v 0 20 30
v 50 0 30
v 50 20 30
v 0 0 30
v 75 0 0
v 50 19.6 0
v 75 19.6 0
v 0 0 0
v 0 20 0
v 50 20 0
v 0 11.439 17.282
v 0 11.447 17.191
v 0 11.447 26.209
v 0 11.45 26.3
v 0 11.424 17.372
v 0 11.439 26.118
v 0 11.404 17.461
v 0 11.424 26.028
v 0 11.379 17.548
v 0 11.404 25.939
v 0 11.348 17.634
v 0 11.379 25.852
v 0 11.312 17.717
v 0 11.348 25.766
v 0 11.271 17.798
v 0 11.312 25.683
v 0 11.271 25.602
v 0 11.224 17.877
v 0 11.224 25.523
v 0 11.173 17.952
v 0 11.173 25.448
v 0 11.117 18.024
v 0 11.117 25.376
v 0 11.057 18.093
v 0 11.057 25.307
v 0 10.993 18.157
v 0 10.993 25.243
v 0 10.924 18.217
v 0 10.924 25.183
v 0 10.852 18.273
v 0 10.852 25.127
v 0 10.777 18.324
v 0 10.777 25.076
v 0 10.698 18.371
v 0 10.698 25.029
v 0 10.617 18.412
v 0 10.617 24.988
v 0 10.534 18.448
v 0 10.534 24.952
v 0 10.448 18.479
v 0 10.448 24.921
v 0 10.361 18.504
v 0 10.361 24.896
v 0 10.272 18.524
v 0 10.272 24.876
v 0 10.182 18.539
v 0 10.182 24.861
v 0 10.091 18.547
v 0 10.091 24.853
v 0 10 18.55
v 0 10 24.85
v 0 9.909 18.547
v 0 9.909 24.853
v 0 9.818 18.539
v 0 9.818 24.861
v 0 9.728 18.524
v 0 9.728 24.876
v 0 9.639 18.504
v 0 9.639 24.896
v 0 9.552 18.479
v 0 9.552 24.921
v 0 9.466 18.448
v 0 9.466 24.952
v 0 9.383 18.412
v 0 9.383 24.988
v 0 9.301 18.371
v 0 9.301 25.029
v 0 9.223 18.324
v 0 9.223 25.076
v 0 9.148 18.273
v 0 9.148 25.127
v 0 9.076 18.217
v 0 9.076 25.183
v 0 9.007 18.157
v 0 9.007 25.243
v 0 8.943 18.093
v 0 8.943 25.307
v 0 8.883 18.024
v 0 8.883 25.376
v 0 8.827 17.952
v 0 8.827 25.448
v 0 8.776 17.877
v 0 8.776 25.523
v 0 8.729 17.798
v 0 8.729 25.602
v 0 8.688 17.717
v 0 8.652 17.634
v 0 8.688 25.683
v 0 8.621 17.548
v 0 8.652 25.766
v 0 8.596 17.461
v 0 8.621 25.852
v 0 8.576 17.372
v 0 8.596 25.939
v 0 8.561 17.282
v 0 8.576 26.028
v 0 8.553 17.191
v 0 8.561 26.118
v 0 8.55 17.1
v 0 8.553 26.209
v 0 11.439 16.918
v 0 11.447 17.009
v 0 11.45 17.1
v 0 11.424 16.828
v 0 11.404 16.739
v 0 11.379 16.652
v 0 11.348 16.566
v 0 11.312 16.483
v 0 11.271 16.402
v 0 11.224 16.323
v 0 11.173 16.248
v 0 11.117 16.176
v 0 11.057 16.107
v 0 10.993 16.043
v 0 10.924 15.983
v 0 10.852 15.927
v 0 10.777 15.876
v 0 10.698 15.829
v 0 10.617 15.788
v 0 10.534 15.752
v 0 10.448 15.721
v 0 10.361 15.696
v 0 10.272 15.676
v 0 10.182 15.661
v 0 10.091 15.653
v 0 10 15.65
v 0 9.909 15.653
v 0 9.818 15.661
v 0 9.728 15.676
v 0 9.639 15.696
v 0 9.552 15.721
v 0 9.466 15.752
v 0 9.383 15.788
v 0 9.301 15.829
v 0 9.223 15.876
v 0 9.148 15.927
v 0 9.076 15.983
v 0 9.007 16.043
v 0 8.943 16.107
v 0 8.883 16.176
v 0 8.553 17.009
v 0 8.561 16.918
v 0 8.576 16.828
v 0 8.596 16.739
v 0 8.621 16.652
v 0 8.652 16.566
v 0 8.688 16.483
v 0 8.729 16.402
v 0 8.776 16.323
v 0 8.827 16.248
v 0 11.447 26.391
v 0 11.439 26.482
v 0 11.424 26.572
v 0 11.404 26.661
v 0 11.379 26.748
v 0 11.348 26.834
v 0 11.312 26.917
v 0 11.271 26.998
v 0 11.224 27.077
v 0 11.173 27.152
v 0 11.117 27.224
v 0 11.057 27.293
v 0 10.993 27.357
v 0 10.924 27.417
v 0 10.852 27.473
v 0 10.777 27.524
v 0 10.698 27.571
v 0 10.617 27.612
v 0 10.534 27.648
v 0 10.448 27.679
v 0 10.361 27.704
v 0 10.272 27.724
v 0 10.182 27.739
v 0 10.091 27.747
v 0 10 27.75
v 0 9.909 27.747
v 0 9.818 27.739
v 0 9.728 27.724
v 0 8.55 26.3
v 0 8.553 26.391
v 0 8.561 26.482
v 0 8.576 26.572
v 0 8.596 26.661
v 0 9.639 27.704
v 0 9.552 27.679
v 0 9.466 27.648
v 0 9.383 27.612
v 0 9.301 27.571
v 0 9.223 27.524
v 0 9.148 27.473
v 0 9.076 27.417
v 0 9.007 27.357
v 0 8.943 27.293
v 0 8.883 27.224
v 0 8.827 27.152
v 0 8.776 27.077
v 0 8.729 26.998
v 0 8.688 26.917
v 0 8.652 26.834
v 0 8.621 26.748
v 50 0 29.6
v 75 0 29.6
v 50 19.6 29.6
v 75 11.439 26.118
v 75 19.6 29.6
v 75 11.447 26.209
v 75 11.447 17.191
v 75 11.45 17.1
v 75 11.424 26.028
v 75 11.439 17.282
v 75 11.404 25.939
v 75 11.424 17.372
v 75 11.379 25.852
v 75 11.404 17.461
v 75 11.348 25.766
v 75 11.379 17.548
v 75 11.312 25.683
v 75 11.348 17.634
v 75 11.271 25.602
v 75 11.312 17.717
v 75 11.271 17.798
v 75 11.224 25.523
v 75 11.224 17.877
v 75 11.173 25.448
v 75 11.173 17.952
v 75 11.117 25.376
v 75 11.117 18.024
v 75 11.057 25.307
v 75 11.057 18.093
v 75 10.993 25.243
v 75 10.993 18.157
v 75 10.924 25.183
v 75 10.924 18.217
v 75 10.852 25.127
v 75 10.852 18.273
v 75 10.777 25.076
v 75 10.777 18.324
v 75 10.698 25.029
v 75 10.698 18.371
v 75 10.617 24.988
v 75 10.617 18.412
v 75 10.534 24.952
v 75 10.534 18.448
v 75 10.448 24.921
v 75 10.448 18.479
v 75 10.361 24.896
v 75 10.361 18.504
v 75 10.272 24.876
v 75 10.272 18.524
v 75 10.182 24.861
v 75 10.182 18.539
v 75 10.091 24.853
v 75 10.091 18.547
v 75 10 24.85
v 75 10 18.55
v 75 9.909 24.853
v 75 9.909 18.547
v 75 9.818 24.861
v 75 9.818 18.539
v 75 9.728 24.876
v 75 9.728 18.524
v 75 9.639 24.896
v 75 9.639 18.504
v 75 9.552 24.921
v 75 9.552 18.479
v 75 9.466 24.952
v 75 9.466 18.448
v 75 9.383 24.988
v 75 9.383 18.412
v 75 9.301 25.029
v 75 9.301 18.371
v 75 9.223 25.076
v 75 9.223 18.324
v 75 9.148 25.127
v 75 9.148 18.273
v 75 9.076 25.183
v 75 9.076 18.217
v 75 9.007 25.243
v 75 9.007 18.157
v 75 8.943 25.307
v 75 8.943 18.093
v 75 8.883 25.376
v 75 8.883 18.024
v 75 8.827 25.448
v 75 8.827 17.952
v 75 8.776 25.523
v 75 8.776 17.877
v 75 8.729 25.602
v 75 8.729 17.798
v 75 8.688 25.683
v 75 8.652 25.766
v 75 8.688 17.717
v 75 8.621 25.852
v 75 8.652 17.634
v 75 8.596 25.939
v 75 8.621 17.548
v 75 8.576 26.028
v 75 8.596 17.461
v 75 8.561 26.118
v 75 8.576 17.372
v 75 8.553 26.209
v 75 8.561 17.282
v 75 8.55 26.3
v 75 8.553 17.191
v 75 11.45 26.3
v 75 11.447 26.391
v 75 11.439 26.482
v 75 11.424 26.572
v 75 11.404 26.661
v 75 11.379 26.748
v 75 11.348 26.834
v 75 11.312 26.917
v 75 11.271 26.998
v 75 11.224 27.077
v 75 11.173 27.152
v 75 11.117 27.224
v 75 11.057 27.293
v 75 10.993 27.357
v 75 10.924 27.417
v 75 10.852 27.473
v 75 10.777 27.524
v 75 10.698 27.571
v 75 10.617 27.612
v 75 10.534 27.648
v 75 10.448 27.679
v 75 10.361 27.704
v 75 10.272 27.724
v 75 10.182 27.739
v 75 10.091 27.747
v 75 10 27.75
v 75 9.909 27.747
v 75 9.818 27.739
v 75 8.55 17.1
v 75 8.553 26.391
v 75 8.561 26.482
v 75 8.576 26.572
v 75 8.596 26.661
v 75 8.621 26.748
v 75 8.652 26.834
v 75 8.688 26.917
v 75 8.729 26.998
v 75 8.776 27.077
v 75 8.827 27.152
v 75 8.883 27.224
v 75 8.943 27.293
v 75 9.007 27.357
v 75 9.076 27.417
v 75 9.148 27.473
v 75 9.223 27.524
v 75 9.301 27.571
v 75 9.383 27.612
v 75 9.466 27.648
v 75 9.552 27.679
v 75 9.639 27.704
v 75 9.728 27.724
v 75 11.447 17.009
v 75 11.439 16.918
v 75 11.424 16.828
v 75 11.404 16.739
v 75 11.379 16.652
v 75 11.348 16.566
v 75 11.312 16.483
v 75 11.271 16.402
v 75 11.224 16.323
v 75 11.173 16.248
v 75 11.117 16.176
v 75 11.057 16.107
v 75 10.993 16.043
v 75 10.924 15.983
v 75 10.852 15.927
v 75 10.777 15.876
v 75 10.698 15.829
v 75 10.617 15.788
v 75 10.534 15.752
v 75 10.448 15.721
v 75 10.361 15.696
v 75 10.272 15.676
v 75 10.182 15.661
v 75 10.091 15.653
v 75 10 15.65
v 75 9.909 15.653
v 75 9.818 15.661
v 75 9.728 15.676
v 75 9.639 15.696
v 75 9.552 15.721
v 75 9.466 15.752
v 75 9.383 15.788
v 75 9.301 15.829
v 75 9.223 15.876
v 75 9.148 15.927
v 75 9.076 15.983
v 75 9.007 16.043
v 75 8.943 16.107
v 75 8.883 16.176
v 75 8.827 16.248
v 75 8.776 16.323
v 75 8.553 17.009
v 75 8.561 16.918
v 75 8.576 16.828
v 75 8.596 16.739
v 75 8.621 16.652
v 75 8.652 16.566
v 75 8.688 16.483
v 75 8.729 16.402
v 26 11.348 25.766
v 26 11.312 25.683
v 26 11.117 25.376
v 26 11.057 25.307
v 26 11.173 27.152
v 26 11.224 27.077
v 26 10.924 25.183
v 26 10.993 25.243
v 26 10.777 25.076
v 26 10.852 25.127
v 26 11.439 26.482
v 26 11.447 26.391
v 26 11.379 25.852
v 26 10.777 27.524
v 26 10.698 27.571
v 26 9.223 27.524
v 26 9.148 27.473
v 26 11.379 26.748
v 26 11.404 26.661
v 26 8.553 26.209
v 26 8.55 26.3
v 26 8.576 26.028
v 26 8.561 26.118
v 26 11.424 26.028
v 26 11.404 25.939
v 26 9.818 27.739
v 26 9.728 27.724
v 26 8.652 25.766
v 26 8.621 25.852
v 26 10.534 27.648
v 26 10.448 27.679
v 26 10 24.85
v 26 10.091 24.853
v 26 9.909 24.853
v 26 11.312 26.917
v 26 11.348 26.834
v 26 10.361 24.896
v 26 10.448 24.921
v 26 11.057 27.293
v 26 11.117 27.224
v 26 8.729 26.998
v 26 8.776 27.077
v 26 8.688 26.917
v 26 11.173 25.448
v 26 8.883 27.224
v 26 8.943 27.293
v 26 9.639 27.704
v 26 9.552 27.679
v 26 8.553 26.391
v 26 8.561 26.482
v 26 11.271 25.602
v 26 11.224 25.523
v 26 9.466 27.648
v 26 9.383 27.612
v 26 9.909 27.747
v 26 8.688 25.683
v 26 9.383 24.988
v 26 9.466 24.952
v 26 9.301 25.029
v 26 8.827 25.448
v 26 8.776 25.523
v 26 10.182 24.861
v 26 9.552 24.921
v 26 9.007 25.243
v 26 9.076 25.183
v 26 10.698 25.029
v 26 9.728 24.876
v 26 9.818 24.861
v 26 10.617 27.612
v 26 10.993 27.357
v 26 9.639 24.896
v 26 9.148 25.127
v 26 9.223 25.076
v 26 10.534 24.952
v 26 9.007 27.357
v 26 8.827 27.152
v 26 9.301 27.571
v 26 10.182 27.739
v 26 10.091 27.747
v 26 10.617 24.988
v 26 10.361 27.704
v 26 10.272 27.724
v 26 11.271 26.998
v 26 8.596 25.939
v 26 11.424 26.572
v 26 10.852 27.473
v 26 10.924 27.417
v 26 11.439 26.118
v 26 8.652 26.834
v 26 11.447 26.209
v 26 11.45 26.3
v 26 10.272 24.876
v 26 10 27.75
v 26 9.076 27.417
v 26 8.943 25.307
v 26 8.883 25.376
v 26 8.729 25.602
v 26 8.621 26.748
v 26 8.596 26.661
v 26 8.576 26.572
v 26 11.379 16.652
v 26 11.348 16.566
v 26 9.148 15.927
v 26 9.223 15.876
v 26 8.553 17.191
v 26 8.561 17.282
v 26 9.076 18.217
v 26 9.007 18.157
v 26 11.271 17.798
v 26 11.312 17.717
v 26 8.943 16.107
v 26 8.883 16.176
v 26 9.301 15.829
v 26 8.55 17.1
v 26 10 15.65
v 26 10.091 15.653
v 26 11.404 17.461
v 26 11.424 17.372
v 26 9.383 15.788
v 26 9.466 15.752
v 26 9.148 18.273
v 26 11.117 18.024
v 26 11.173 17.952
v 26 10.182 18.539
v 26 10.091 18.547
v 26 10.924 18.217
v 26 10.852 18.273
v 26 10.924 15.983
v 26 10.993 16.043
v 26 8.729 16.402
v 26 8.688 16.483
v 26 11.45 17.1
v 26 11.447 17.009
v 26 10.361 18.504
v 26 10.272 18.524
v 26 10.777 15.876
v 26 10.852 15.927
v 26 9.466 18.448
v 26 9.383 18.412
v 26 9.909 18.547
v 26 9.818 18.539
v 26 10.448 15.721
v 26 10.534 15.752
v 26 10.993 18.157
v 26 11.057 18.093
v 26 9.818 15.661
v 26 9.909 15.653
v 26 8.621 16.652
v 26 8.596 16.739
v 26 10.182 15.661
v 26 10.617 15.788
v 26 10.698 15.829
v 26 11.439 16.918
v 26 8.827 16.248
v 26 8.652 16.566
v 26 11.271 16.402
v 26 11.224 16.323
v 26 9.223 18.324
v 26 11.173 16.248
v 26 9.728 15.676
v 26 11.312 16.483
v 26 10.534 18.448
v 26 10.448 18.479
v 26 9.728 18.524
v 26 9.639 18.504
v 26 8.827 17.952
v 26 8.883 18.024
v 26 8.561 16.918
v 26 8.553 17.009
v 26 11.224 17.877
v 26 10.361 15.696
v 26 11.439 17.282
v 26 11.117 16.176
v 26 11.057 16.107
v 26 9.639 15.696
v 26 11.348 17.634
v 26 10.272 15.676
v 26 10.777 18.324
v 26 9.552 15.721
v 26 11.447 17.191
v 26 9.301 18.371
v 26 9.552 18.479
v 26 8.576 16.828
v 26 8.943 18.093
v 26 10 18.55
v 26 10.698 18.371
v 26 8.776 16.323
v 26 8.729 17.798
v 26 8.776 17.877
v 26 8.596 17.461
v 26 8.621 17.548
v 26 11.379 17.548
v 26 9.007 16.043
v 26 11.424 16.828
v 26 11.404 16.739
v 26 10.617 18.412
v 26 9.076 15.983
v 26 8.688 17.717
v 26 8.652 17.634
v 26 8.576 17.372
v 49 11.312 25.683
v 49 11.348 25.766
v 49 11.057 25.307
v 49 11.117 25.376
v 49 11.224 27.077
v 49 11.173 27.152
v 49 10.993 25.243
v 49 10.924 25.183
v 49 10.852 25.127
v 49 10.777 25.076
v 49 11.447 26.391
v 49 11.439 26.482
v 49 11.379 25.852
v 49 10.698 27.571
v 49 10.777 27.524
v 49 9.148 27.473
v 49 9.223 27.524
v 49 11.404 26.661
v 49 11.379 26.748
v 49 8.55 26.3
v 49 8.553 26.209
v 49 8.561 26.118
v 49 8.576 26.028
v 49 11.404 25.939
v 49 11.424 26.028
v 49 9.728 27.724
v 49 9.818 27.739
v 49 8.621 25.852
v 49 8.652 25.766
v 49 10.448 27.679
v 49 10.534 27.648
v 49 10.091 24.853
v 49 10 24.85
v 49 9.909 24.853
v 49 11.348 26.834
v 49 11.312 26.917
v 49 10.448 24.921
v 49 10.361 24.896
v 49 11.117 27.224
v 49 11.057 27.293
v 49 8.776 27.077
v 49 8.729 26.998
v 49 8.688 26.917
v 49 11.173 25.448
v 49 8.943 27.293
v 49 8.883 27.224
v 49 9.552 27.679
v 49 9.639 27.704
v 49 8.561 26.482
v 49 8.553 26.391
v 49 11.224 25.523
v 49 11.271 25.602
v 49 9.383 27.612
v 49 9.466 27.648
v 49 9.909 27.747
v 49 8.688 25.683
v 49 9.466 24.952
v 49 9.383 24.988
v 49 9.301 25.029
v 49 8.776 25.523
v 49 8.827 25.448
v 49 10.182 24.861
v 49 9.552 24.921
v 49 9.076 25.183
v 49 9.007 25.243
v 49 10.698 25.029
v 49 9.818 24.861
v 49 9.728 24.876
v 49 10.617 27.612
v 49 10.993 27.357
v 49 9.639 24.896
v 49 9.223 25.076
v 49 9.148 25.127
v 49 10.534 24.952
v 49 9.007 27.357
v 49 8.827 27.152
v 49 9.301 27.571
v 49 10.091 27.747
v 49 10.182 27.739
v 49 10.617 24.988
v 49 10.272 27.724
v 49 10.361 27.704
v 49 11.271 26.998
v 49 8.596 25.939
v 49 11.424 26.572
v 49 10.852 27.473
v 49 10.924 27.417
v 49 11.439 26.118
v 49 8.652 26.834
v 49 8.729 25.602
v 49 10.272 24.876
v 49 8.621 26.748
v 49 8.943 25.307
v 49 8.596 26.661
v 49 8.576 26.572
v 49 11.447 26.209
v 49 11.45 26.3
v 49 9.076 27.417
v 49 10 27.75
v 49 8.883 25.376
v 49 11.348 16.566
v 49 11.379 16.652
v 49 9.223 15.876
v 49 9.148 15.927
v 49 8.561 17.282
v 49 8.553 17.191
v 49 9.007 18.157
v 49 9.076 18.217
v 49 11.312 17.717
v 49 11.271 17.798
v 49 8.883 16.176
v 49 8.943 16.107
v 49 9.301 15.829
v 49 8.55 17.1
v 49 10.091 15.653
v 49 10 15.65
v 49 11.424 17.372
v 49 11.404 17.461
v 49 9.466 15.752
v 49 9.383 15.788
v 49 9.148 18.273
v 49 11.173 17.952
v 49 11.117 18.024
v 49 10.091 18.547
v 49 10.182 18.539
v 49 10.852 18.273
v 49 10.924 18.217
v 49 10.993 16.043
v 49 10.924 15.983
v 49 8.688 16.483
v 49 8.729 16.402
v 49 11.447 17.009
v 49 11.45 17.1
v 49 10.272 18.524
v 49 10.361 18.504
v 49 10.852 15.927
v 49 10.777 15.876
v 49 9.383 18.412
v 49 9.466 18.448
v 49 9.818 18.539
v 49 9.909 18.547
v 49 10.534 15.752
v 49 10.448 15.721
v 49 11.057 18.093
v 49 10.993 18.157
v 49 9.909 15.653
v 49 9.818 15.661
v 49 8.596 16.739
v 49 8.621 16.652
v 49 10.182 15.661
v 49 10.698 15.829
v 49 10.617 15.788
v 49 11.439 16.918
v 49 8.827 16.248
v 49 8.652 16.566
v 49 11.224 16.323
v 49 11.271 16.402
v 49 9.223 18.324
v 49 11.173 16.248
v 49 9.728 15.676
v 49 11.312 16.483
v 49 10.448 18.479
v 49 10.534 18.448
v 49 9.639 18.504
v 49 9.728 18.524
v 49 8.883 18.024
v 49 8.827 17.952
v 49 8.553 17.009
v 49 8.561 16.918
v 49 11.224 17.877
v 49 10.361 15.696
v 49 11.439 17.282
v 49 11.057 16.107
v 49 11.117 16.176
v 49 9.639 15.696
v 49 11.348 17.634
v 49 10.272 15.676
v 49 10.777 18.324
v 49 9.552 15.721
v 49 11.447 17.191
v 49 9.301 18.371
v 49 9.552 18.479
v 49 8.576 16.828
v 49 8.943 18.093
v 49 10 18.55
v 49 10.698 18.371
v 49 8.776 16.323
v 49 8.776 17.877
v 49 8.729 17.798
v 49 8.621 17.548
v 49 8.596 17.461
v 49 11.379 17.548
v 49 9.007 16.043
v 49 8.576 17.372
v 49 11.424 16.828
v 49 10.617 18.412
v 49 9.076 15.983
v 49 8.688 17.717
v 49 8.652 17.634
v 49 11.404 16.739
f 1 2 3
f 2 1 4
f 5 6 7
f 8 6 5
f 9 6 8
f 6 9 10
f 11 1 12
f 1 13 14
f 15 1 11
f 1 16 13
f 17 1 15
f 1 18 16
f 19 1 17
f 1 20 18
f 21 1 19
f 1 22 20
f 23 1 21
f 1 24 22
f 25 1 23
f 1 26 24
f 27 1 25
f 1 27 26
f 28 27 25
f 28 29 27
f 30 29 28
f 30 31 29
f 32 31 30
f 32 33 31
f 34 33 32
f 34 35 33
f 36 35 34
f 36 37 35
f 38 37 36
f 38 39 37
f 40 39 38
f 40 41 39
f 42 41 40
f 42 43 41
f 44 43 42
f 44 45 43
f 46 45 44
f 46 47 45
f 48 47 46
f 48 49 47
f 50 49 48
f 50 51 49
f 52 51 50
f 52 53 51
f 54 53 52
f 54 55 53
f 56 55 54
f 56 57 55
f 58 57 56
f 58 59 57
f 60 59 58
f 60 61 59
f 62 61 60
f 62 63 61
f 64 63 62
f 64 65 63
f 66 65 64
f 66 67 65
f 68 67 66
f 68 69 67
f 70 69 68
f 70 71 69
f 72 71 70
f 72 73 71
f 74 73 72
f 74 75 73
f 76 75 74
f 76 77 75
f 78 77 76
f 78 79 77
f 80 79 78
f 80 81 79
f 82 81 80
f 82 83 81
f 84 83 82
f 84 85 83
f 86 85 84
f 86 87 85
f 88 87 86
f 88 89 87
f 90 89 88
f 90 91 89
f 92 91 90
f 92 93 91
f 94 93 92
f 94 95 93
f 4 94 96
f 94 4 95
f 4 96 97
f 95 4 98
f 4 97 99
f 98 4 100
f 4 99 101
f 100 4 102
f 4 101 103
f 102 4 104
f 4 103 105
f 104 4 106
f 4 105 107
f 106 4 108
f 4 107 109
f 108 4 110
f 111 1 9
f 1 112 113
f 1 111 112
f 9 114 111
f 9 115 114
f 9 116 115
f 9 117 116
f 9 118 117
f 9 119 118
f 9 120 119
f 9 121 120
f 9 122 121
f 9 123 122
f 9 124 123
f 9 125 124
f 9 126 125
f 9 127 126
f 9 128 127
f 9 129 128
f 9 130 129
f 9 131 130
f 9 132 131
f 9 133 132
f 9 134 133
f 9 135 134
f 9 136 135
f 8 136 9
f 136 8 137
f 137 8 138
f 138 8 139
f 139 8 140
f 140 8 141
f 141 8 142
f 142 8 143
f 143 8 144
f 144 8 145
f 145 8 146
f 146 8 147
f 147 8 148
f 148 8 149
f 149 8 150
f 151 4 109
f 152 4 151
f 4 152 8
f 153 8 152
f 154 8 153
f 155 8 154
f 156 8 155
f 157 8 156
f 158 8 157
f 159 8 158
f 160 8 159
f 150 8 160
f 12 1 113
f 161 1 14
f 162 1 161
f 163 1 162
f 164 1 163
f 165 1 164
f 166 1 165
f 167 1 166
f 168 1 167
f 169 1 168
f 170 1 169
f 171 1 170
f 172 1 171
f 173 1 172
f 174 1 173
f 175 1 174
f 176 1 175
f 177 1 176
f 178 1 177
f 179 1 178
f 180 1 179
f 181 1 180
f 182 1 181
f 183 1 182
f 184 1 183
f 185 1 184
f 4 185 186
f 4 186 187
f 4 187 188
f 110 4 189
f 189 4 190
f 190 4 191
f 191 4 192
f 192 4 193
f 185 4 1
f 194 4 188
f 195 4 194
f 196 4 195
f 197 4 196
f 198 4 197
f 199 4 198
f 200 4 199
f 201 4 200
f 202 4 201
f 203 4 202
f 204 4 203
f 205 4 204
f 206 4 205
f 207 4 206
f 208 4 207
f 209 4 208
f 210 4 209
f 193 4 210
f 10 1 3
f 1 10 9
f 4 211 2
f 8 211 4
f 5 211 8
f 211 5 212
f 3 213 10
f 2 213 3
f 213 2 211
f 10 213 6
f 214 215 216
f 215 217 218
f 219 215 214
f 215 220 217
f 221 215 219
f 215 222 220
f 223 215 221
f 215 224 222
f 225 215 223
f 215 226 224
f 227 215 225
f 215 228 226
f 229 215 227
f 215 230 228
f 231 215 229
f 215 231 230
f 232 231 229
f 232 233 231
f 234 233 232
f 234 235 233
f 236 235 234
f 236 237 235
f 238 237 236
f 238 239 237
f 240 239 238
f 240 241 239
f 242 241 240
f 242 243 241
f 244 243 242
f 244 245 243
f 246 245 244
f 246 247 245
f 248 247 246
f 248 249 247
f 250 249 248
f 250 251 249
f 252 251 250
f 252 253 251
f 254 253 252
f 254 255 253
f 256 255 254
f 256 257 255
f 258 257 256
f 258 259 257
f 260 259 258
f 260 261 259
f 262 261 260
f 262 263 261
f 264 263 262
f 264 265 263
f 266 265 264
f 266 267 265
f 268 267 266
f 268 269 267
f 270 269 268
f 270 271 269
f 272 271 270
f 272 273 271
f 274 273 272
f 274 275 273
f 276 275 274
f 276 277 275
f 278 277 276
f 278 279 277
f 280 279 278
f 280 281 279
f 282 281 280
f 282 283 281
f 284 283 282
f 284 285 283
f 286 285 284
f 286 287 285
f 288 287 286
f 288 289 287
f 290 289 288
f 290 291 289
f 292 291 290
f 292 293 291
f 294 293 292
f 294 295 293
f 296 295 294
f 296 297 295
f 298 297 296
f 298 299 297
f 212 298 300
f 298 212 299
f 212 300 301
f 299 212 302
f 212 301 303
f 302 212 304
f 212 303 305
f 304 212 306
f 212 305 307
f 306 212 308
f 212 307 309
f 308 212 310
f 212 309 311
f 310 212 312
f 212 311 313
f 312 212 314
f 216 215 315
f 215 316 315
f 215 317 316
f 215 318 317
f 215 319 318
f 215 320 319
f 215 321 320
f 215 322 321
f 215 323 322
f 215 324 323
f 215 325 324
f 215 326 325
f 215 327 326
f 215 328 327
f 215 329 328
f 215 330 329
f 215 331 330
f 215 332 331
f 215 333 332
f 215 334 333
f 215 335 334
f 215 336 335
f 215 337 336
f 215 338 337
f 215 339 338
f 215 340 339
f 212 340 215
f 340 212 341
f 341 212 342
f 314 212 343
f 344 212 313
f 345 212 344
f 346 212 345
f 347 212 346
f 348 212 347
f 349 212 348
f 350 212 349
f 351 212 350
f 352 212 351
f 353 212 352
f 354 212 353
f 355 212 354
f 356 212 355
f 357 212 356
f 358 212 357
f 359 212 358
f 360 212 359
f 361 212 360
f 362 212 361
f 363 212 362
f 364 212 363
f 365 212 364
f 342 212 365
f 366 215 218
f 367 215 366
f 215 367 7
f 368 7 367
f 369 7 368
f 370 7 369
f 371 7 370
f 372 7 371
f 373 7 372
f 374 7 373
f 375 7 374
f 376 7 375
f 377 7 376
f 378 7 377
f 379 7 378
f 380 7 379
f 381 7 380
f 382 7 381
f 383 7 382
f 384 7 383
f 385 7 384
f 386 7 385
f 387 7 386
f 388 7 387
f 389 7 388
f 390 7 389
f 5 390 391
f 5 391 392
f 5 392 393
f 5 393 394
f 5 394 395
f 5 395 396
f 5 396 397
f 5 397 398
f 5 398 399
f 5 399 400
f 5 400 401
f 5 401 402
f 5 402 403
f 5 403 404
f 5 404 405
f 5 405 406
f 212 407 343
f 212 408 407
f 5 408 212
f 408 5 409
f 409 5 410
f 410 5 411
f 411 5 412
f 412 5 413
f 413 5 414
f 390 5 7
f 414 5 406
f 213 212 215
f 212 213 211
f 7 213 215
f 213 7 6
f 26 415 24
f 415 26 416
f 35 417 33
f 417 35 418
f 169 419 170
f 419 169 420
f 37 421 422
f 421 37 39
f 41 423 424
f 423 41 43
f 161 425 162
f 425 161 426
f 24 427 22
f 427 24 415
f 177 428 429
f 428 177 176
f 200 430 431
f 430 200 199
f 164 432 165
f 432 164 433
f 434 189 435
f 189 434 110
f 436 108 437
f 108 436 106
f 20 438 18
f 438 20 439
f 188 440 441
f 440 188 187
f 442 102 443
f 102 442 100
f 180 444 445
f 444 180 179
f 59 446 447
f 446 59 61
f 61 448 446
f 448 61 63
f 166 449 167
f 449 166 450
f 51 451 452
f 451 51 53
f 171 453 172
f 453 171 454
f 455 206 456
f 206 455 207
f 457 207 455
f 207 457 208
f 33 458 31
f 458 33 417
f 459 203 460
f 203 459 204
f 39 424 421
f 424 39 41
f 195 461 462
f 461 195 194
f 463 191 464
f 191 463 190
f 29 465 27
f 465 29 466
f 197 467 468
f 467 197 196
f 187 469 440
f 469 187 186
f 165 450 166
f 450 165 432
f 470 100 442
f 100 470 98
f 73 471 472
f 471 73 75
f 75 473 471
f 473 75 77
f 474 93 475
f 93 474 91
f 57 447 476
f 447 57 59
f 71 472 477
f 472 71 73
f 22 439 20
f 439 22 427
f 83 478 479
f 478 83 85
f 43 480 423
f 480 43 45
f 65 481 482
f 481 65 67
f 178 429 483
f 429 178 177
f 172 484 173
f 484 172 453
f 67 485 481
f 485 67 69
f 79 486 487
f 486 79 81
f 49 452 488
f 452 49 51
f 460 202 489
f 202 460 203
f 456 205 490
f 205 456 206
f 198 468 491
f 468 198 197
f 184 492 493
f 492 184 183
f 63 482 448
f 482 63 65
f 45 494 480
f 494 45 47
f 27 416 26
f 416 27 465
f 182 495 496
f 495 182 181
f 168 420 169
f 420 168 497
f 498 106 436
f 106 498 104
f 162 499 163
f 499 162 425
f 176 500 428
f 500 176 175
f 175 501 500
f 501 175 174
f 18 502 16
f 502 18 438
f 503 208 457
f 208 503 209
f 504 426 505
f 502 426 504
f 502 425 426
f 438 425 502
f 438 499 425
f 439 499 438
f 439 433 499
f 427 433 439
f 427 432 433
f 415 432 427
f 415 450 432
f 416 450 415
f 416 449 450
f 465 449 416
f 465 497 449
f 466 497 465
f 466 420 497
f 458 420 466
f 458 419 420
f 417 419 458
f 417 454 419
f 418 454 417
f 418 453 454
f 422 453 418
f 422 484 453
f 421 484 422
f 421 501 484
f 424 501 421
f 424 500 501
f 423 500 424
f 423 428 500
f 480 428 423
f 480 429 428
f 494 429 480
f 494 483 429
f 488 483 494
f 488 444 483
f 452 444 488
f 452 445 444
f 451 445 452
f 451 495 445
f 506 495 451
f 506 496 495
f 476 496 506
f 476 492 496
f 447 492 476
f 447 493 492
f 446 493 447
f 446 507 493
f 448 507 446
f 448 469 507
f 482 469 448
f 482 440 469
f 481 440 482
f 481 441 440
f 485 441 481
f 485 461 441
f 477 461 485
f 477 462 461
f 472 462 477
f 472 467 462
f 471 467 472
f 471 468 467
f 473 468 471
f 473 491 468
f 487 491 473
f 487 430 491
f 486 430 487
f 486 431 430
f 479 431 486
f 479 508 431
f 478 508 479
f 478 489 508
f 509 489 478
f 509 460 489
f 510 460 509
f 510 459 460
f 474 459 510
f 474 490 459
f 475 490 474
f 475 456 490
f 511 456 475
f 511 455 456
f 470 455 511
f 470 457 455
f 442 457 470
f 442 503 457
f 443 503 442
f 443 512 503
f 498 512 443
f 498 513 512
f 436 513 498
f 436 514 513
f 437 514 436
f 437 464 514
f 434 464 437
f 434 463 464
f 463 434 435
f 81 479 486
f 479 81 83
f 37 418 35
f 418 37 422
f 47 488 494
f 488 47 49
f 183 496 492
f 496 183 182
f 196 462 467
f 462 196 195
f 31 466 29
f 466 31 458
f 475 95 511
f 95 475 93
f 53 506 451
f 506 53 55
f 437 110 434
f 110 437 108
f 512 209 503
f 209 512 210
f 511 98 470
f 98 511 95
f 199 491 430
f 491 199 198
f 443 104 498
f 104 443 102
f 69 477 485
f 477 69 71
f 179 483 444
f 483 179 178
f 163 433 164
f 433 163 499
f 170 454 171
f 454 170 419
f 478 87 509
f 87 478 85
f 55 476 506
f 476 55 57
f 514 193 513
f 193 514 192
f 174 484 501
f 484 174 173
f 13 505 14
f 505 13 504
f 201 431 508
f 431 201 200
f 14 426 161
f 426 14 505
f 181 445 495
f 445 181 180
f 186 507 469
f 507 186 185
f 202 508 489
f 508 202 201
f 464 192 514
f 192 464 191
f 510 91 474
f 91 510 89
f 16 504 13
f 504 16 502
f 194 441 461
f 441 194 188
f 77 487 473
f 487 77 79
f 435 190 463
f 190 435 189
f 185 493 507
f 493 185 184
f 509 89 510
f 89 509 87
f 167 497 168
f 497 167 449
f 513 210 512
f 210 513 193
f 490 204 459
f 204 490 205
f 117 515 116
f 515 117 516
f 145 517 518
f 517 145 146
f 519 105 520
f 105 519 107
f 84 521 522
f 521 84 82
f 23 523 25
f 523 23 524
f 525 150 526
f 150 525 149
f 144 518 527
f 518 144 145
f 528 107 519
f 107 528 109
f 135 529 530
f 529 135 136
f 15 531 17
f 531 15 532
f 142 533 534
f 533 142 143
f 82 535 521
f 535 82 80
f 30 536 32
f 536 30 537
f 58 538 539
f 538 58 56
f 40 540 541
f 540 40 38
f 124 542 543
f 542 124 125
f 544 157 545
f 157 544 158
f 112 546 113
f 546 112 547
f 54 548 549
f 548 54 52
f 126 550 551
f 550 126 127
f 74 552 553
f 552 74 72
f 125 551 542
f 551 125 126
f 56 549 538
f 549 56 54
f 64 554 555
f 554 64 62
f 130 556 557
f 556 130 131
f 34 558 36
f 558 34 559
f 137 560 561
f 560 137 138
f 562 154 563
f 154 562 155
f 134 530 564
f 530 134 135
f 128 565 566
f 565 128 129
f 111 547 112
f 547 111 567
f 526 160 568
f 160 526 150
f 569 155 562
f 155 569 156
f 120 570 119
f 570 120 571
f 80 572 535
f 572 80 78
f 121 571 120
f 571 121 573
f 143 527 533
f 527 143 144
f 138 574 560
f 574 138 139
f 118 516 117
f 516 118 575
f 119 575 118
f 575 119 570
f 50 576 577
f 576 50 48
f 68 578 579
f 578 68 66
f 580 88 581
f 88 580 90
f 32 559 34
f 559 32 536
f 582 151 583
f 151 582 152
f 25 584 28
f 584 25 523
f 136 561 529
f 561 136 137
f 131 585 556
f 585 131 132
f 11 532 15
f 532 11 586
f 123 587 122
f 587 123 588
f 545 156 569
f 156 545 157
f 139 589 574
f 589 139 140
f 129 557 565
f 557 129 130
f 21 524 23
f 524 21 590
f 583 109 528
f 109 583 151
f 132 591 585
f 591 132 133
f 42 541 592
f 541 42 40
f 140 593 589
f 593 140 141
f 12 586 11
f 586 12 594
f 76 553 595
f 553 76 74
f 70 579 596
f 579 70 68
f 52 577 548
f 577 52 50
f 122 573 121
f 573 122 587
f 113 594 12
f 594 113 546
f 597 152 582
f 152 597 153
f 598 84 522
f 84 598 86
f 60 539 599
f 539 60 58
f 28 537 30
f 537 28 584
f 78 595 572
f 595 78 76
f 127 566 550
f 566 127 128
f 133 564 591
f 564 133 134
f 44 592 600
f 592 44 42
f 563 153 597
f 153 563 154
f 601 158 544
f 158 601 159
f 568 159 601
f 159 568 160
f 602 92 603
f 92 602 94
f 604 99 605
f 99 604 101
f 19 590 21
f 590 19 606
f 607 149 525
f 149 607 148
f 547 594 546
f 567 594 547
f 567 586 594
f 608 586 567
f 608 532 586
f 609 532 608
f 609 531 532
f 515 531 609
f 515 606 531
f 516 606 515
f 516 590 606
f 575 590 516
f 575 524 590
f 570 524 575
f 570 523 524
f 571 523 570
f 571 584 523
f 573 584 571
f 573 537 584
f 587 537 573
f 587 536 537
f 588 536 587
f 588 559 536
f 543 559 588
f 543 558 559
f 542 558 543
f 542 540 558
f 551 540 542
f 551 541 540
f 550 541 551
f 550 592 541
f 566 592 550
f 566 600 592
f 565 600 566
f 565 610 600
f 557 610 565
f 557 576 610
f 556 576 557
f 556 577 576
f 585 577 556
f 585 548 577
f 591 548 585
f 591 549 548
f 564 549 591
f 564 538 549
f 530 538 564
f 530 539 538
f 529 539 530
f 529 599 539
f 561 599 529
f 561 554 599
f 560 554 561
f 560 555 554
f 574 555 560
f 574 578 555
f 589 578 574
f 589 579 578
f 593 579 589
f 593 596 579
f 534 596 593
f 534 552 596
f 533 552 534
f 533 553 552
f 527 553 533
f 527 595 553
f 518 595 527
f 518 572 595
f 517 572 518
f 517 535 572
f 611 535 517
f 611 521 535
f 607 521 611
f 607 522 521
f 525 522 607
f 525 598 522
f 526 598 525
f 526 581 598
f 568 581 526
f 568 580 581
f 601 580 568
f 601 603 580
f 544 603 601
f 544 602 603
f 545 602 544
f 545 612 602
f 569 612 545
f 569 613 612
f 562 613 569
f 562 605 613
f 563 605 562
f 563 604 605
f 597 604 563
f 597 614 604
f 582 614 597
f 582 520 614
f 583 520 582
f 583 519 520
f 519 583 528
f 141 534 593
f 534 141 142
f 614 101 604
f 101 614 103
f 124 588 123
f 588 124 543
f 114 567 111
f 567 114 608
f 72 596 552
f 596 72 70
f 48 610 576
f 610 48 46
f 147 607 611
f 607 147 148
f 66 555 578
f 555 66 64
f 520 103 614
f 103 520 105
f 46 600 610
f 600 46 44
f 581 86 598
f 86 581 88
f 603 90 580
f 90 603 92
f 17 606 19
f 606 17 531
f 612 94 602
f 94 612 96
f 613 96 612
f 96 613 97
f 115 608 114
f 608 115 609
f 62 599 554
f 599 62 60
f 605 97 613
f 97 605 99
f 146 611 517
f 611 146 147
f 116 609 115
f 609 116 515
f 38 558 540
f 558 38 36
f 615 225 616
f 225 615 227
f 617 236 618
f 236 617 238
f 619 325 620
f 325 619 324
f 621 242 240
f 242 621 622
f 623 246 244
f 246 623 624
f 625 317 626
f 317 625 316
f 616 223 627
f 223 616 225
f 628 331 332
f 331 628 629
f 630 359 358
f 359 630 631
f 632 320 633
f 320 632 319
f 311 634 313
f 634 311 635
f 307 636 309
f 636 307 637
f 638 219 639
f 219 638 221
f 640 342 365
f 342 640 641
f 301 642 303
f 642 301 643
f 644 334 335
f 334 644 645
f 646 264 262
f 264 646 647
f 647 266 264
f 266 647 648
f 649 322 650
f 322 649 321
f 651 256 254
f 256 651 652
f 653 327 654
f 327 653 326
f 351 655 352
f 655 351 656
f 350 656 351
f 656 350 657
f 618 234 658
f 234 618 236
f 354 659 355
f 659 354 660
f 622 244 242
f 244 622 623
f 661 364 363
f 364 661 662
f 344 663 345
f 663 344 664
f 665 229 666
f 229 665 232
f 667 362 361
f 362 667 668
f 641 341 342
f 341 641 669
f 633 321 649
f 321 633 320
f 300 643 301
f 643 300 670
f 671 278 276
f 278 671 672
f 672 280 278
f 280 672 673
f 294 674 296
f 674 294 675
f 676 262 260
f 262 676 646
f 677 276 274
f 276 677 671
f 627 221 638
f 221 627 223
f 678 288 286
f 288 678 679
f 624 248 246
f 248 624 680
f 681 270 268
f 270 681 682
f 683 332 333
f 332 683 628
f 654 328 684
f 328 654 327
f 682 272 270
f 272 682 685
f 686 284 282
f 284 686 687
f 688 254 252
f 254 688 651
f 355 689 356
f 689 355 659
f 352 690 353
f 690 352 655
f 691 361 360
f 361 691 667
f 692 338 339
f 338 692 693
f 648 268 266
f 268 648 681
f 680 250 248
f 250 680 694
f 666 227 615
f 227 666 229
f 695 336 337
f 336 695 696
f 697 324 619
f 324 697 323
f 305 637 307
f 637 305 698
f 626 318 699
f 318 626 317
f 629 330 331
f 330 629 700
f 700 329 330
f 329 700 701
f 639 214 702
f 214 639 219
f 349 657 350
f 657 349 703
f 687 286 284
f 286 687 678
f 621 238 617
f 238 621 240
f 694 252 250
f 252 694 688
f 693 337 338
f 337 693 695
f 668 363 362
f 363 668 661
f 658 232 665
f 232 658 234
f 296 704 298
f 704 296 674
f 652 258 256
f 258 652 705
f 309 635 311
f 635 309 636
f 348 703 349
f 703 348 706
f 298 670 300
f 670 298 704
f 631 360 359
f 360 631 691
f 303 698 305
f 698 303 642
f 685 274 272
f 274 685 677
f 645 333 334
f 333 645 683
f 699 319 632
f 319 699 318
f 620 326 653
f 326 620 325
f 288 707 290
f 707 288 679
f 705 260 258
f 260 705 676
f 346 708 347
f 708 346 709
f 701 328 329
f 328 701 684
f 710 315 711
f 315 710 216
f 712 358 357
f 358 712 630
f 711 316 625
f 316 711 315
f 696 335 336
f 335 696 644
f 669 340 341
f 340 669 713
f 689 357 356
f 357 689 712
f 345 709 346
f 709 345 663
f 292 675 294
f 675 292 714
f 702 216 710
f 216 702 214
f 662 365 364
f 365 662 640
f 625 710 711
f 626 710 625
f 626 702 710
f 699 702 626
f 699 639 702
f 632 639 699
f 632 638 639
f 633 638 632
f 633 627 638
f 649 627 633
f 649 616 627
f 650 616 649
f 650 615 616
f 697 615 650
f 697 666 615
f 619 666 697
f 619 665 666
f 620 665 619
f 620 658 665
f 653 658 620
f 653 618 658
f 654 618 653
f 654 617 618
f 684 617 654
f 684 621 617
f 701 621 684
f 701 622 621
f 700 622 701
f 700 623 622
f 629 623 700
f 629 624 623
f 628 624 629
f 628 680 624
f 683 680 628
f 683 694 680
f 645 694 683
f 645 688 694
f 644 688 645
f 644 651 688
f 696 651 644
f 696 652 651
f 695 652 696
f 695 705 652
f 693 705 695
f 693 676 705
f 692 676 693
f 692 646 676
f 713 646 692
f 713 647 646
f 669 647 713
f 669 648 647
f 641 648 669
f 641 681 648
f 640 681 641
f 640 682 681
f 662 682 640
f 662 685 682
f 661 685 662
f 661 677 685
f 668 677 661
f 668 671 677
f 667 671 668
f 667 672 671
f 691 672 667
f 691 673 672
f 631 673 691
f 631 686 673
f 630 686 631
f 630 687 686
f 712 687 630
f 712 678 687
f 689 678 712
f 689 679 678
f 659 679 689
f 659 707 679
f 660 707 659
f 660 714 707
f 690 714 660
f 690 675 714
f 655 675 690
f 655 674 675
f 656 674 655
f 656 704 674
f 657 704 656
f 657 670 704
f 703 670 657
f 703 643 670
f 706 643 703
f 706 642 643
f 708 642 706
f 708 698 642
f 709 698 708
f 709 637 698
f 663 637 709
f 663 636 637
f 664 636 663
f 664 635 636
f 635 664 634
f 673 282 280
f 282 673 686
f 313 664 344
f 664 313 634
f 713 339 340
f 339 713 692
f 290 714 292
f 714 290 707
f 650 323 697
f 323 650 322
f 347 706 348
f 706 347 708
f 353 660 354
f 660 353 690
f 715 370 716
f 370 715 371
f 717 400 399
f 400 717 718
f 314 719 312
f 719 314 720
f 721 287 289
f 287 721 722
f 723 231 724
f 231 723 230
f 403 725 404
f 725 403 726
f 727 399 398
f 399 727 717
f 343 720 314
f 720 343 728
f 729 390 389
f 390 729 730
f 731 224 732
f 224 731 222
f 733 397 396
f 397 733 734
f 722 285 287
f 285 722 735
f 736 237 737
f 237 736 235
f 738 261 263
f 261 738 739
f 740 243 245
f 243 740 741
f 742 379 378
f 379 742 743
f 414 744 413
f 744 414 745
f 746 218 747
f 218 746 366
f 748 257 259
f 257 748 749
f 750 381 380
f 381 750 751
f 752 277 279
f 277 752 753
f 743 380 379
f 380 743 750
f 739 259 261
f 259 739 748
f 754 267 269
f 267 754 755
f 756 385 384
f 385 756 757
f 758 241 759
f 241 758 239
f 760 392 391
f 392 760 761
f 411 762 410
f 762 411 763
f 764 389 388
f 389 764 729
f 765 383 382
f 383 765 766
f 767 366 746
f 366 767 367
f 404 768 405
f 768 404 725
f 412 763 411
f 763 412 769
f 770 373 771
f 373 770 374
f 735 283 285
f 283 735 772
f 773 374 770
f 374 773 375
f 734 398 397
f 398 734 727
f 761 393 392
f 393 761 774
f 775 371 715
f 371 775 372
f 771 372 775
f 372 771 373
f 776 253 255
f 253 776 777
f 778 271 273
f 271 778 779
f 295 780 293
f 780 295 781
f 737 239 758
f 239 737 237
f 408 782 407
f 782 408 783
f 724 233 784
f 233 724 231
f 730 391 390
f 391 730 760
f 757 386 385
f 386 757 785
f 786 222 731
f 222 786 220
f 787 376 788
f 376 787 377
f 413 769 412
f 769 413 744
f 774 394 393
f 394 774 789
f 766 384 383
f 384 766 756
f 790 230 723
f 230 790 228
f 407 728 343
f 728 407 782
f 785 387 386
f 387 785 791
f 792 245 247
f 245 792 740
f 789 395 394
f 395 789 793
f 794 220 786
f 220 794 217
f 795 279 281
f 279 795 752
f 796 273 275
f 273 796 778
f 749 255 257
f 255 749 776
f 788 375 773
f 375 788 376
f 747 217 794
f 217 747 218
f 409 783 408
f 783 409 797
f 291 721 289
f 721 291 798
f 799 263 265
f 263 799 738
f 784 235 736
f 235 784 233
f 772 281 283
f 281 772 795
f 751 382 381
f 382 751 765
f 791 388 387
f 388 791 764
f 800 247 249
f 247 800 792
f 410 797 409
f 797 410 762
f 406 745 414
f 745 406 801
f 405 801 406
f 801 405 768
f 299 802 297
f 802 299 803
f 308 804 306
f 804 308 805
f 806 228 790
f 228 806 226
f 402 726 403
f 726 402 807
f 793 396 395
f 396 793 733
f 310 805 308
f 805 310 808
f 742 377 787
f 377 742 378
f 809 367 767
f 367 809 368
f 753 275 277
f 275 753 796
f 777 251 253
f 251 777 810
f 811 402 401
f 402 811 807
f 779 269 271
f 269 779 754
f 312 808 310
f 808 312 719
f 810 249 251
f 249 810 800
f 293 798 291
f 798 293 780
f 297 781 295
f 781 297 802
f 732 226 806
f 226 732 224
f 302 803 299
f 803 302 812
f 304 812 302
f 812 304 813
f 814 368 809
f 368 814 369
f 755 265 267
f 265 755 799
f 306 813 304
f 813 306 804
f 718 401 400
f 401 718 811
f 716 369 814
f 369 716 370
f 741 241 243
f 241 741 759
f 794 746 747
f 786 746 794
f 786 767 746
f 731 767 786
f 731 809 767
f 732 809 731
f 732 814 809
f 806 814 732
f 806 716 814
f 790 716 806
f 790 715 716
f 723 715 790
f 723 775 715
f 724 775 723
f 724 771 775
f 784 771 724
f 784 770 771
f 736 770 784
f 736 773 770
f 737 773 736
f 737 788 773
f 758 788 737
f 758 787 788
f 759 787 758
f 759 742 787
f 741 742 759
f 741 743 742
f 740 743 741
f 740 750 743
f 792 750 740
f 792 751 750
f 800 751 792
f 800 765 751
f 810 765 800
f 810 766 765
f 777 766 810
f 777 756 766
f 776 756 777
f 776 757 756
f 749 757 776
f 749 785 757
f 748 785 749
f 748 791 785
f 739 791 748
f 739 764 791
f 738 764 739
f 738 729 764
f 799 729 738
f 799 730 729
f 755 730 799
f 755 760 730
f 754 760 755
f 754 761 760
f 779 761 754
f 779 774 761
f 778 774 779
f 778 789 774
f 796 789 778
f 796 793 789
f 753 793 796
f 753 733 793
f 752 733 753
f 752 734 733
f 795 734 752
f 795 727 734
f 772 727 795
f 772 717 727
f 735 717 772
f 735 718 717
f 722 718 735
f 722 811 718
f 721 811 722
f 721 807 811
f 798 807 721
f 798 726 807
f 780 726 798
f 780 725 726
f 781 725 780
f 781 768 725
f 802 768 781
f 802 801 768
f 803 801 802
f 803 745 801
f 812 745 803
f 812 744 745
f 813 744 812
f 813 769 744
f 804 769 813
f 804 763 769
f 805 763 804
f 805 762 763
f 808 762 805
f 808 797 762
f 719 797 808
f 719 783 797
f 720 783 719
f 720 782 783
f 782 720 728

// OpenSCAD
// file: ../shared_helper.scad
// Shared Helper variables and modules

// Variables
quality_value = 100;
$fn = quality_value;

// Screw Holes
m2_hole_diameter = 1.85; // 1.95;
m2_loose_diameter = 2.50;
m2_counter_sink_diameter = 3.80;
m2_counter_sink_length = 2.00;
m2_hole_offset = m2_hole_diameter / 2.0;
m2_hole_height = 100.00;
m2_nut_outer_width = 3.90;
m2_nut_outer_height = 4.40;
m2_nut_outer_depth = 1.50;
// M2_Counter_Sink_Depth

m3_hole_diameter = 2.9; // 2.8
m3_hole_offset = m3_hole_diameter / 2.0;
m3_hole_height = 100.00;
m3_head_diameter = 6.2;
m3_head_depth = 3.0; // 2.5??, 3.0

m4_hole_diameter = 3.85; // 3.90
m4_hole_offset = m4_hole_diameter / 2.0;
m4_hole_height = 100.00;
m4_head_diameter = 7.55;
m4_head_depth = 3.0; // 2.5??, 3.0

// Tolerances
hole_tight_tolerance = 0.05;
hole_loose_tolerance = 0.20;

// Springs
spring_diameter = 5.45;
spring_length = 35.00;

// Nails
brass_nail_diameter = 2.4; // 2.00; // 1.95 at the beginning it tapers
brass_nail_length = 29.54;
brass_nail_head_diameter = 3.20; // 3.00; // oval 2.84 - 3.1 mm
brass_nail_head_depth = 1.80; //1.00; // 1.80; // 2.00;

// General Variables
v_wheel_hole_diameter = 5.20;
v_wheel_offset = (v_wheel_hole_diameter / 2.0) + 2.0;

// Hot-End Holes
stand_off_hole_diameter = m3_hole_diameter;
stand_off_width_distance = 11.60 + stand_off_hole_diameter;

// Magnets
// Small Magnet (Neo)
small_magnet_height = 2.00; // ±2.00 1.97
small_magnet_diameter = 3.00; // ±3.00 // 2.98

// Medium Magnet (Neo)
medium_magnet_height = 2.96; // ±3.00
medium_magnet_diameter = 5.00;

// Large Magnet (ferrite)
large_magnet_height = 2.98; // ±3.00
large_magnet_diameter = 9.79; // ±10.00

// Switches
// D2F Switch
d2f_length = 12.88; // ±12.70
d2f_width = 5.84; // ±5.70
d2f_depth = 6.20; // ±7.00 (5 + 2) ... ±6.50
d2f_pins = 9.00 - 6.50;
d2f_plunger_length = 2.64;
d2f_plunger_width = 0.97; // ±1.00
d2f_plunger_depth = 0.39; // ±0.50
d2f_mount_hole_position = 2.10;
d2f_hole_position_from_centre = 2.85;
d2f_pin_pre_travel = 0.50;
d2f_mount_hole_shift = 4.40 + m2_hole_offset + m2_hole_offset;
d2f_switch_base = 0.2 + 0.7 + 1.50 + 0.55 - 1.0;
d2f_switch_hole_hight = 22.00;
d2f_extra_tolerance_for_switch_holes = 0.12;

// 10t85 Switch
10t85_length = 20.04; // ±19.90
10t85_width = 6.34; // ±6.40
10t85_depth = 10.64; // ±10.70
10t85_plunger_length = 3.28; // ±4.00
10t85_plunger_width = 1.96;
10t85_plunger_depth = 1.30;

// Creality Endstop Board, 2208 V2.0
// creality_endstop_hole_diameter = m3_hole_diameter + hole_loose_tolerance; // Hole is M3 sized but meant for a loose M2
creality_endstop_hole_diameter = m2_hole_diameter + hole_tight_tolerance;
creality_endstop_hole_offset = 15.00;
creality_endstop_board_height = 20.30;
creality_endstop_plug_height_extension = 2.00;
creality_endstop_board_width = 20.20;
creality_endstop_board_thickness = 1.30;
creality_endstop_board_pins_thickness = 3.20 - creality_endstop_board_thickness;
creality_endstop_board_switch_thickness = 8.50 - creality_endstop_board_thickness;
creality_endstop_board_back_space = 2.00; // Taken from the rail mount bracket
creality_endstop_board_back_height = 14.90;
creality_endstop_board_back_width = 16.80;
creality_endstop_back_thickness = 3.30;
creality_endstop_back_hole_wall_spacing = 1.50; //3.00;

// Small Tactile Switch
small_tactile_switch_length = 6.21;
small_tactile_switch_width = 6.17;
small_tactile_switch_depth = 3.18;
small_tactile_switch_plunger_diameter = 3.40;
small_tactile_switch_plunger_depth = 1.40;

// Large Tactile Switch
large_tactile_switch_length = 12.03;
large_tactile_switch_width = 11.95;
large_tactile_switch_depth = 3.12;
large_tactile_switch_plunger_length = 3.75;
large_tactile_switch_plunger_width = 3.70;
large_tactile_switch_plunger_depth = 3.94;

// Button
button_topper_top_diameter = 11.65;
button_topper_bottom_diameter = 12.96;
button_topper_depth = 5.64;
button_topper_bottom_depth = 4.38;

// Belts
// GT2

// Modules
// Creality Mounting Holes
module CrealityCounterSunkHotEndMountingHoles(total_casing_depth, casing_top_extension) {
  // Mounting holes with countersinking - horizontal, through-holes, properly positioned
  cylinder(d=m3_hole_diameter, h=total_casing_depth + 2.00, center=true);
  cylinder(d=m3_hole_diameter, h=total_casing_depth + 2.00, center=true);

  translate([stand_off_width_distance, 0, 0]) {
    cylinder(d=m3_hole_diameter, h=total_casing_depth + 2.00, center=true);
    cylinder(d=m3_head_diameter + hole_loose_tolerance, h=4 + m3_head_depth + 6 + 1.8 + casing_top_extension);
  }
}

module CrealityHotEndMountingHoles(total_casing_depth) {
  cylinder(d=m3_hole_diameter, h=total_casing_depth + 2.00, center=true);

  translate([stand_off_width_distance, 0, 0]) {
    cylinder(d=m3_hole_diameter, h=total_casing_depth + 2.00, center=true);
  }
}

module CrealityEndstopMountHoles(height, include_back_nut_cutout) {
  cylinder(d=creality_endstop_hole_diameter, h=height, center=true);

  translate([creality_endstop_hole_offset, 0, 0]) {
    cylinder(d=creality_endstop_hole_diameter, h=height, center=true);
  }

  if (include_back_nut_cutout) {
    back_depth = m2_nut_outer_depth;

    translate([-2.0, -2.0, 0]) {
      cube([m2_nut_outer_width, m2_nut_outer_height, back_depth]);

      translate([creality_endstop_hole_offset, 0, 0]) {
        cube([m2_nut_outer_width, m2_nut_outer_height, back_depth]);
      }
    }
  }
}

module CrealityEndstopBackSpace(base_cutout_extension) {
  // Smaller gap between screw holes
  translate([creality_endstop_hole_diameter + creality_endstop_back_hole_wall_spacing, 0.0, 0.0]) {
    cube([creality_endstop_board_back_width - 2 * (creality_endstop_hole_diameter + creality_endstop_back_hole_wall_spacing), base_cutout_extension, creality_endstop_back_thickness + 1.0]);
  }

  // Top gap part
  translate([0.0, base_cutout_extension, 0]) {
    cube([creality_endstop_board_back_width, (creality_endstop_board_back_height + base_cutout_extension), creality_endstop_back_thickness + 1.0]);
  }
}

// D2F Switch Mounting
module D2F_Switch_Space() { // Should be used as a negative / difference space
  // D2F Switch Space
  // switch_base = 0.2 + 0.7 + 1.50 + 0.55;
  // switch_base = 0.2 + 0.7 + 1.50 + 0.55 - 1.0;
  switch_base = d2f_switch_base;

  // cube([d2f_depth, d2f_width + 1.05 + 0.75 - 0.95, d2f_length + casing_top_edge_buffer]); // 1.05
  cube([d2f_length, (d2f_width + 2.00) + d2f_pins, d2f_depth]);
}

module D2F_Switch_Mount_Holes() {
  rotate([0, 0, 90]) {
    translate([0.0, d2f_hole_position_from_centre, 0.0]) {
      cylinder(d=m2_hole_diameter + hole_tight_tolerance + (d2f_extra_tolerance_for_switch_holes * 3), h=d2f_switch_hole_hight);
    }

    translate([0.0, -(d2f_hole_position_from_centre + m2_hole_offset), 0.0]) {
      cylinder(d=m2_hole_diameter + hole_tight_tolerance + (d2f_extra_tolerance_for_switch_holes * 3), h=d2f_switch_hole_hight);
    }
  }
}
// main file
// Frame Bar Extension
// This extension piece connects two frame bars with a configurable middle section

include <../shared_helper.scad>;

// Frame bar connector dimensions
connector_width = 20.0;       // Width of the frame bar connector
connector_height = 30.0;      // Height of the frame bar connector
female_depth = 25.0;          // Depth of the female connector
male_depth = 25.0;            // Depth of the male connector
extension_length = 25.0;      // Length of the extension middle section (adjustable)

// Hole specifications
hole_diameter = m3_hole_diameter;  // Using M3 holes from shared_helper
hole_top_margin = 3.7;        // Distance from top edge to first hole center
hole_spacing = 13.4;          // Distance between hole centers
hole_front_margin = 10.2;     // Distance from front edge to hole centers

// Tolerance for better fit
fit_tolerance = 0.2;          // Tolerance for male connector to fit into female

// Derived values
total_length = female_depth + extension_length + male_depth;

module frame_bar_extension() {
  difference() {
    union() {
      // Female connector (left side)
      translate([0, 0, 0])
        cube([female_depth, connector_width, connector_height]);

      // Extension middle section
      translate([female_depth, 0, 0])
        cube([extension_length, connector_width, connector_height]);

      // Male connector (right side)
      translate([female_depth + extension_length, 0, 0])
        cube([male_depth, connector_width - fit_tolerance*2, connector_height - fit_tolerance*2]);
    }

    // Holes in female connector
    translate([0, 0, 0])
      frame_bar_holes(female_depth);

    // Holes in male connector
    translate([female_depth + extension_length, 0, 0])
      frame_bar_holes(male_depth);
  }
}

module frame_bar_holes(section_length) {
  // Top hole
  translate([-1, connector_width/2, connector_height - hole_top_margin])
    rotate([0, 90, 0])
      cylinder(d=hole_diameter, h=section_length+2);

  // Bottom hole
  translate([-1, connector_width/2, hole_top_margin + hole_spacing])
    rotate([0, 90, 0])
      cylinder(d=hole_diameter, h=section_length+2);
}

// Render the extension piece
frame_bar_extension();
